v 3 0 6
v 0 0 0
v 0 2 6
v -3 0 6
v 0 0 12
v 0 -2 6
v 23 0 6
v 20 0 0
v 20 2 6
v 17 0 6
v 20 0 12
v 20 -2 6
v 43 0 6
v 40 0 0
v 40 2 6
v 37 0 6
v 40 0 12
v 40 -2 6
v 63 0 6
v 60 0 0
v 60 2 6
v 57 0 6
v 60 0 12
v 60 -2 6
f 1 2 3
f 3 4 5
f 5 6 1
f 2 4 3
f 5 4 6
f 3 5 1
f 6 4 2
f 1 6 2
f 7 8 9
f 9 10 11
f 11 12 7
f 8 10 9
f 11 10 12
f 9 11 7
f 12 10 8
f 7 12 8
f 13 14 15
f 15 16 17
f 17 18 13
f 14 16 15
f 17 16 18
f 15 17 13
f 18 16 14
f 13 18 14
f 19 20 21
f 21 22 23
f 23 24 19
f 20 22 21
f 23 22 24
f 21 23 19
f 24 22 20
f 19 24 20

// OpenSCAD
$fn=50;

module diamond() {
    polyhedron(points = [[0, 0, 0], 
    [3, 0, 6], [0, 2, 6], [-3, 0, 6], [0, -2, 6],
    [0, 0, 12]],
    faces = [
        [0, 1, 2], [0, 2, 3], [0, 3, 4], [0, 4, 1],
        [5, 2, 1], [5, 3, 2], [5, 4, 3], [5, 1, 4]
    ]);
}

for(i = [0: 1: 3]) {
    translate([20 * i, 0, 0]) diamond();
}
